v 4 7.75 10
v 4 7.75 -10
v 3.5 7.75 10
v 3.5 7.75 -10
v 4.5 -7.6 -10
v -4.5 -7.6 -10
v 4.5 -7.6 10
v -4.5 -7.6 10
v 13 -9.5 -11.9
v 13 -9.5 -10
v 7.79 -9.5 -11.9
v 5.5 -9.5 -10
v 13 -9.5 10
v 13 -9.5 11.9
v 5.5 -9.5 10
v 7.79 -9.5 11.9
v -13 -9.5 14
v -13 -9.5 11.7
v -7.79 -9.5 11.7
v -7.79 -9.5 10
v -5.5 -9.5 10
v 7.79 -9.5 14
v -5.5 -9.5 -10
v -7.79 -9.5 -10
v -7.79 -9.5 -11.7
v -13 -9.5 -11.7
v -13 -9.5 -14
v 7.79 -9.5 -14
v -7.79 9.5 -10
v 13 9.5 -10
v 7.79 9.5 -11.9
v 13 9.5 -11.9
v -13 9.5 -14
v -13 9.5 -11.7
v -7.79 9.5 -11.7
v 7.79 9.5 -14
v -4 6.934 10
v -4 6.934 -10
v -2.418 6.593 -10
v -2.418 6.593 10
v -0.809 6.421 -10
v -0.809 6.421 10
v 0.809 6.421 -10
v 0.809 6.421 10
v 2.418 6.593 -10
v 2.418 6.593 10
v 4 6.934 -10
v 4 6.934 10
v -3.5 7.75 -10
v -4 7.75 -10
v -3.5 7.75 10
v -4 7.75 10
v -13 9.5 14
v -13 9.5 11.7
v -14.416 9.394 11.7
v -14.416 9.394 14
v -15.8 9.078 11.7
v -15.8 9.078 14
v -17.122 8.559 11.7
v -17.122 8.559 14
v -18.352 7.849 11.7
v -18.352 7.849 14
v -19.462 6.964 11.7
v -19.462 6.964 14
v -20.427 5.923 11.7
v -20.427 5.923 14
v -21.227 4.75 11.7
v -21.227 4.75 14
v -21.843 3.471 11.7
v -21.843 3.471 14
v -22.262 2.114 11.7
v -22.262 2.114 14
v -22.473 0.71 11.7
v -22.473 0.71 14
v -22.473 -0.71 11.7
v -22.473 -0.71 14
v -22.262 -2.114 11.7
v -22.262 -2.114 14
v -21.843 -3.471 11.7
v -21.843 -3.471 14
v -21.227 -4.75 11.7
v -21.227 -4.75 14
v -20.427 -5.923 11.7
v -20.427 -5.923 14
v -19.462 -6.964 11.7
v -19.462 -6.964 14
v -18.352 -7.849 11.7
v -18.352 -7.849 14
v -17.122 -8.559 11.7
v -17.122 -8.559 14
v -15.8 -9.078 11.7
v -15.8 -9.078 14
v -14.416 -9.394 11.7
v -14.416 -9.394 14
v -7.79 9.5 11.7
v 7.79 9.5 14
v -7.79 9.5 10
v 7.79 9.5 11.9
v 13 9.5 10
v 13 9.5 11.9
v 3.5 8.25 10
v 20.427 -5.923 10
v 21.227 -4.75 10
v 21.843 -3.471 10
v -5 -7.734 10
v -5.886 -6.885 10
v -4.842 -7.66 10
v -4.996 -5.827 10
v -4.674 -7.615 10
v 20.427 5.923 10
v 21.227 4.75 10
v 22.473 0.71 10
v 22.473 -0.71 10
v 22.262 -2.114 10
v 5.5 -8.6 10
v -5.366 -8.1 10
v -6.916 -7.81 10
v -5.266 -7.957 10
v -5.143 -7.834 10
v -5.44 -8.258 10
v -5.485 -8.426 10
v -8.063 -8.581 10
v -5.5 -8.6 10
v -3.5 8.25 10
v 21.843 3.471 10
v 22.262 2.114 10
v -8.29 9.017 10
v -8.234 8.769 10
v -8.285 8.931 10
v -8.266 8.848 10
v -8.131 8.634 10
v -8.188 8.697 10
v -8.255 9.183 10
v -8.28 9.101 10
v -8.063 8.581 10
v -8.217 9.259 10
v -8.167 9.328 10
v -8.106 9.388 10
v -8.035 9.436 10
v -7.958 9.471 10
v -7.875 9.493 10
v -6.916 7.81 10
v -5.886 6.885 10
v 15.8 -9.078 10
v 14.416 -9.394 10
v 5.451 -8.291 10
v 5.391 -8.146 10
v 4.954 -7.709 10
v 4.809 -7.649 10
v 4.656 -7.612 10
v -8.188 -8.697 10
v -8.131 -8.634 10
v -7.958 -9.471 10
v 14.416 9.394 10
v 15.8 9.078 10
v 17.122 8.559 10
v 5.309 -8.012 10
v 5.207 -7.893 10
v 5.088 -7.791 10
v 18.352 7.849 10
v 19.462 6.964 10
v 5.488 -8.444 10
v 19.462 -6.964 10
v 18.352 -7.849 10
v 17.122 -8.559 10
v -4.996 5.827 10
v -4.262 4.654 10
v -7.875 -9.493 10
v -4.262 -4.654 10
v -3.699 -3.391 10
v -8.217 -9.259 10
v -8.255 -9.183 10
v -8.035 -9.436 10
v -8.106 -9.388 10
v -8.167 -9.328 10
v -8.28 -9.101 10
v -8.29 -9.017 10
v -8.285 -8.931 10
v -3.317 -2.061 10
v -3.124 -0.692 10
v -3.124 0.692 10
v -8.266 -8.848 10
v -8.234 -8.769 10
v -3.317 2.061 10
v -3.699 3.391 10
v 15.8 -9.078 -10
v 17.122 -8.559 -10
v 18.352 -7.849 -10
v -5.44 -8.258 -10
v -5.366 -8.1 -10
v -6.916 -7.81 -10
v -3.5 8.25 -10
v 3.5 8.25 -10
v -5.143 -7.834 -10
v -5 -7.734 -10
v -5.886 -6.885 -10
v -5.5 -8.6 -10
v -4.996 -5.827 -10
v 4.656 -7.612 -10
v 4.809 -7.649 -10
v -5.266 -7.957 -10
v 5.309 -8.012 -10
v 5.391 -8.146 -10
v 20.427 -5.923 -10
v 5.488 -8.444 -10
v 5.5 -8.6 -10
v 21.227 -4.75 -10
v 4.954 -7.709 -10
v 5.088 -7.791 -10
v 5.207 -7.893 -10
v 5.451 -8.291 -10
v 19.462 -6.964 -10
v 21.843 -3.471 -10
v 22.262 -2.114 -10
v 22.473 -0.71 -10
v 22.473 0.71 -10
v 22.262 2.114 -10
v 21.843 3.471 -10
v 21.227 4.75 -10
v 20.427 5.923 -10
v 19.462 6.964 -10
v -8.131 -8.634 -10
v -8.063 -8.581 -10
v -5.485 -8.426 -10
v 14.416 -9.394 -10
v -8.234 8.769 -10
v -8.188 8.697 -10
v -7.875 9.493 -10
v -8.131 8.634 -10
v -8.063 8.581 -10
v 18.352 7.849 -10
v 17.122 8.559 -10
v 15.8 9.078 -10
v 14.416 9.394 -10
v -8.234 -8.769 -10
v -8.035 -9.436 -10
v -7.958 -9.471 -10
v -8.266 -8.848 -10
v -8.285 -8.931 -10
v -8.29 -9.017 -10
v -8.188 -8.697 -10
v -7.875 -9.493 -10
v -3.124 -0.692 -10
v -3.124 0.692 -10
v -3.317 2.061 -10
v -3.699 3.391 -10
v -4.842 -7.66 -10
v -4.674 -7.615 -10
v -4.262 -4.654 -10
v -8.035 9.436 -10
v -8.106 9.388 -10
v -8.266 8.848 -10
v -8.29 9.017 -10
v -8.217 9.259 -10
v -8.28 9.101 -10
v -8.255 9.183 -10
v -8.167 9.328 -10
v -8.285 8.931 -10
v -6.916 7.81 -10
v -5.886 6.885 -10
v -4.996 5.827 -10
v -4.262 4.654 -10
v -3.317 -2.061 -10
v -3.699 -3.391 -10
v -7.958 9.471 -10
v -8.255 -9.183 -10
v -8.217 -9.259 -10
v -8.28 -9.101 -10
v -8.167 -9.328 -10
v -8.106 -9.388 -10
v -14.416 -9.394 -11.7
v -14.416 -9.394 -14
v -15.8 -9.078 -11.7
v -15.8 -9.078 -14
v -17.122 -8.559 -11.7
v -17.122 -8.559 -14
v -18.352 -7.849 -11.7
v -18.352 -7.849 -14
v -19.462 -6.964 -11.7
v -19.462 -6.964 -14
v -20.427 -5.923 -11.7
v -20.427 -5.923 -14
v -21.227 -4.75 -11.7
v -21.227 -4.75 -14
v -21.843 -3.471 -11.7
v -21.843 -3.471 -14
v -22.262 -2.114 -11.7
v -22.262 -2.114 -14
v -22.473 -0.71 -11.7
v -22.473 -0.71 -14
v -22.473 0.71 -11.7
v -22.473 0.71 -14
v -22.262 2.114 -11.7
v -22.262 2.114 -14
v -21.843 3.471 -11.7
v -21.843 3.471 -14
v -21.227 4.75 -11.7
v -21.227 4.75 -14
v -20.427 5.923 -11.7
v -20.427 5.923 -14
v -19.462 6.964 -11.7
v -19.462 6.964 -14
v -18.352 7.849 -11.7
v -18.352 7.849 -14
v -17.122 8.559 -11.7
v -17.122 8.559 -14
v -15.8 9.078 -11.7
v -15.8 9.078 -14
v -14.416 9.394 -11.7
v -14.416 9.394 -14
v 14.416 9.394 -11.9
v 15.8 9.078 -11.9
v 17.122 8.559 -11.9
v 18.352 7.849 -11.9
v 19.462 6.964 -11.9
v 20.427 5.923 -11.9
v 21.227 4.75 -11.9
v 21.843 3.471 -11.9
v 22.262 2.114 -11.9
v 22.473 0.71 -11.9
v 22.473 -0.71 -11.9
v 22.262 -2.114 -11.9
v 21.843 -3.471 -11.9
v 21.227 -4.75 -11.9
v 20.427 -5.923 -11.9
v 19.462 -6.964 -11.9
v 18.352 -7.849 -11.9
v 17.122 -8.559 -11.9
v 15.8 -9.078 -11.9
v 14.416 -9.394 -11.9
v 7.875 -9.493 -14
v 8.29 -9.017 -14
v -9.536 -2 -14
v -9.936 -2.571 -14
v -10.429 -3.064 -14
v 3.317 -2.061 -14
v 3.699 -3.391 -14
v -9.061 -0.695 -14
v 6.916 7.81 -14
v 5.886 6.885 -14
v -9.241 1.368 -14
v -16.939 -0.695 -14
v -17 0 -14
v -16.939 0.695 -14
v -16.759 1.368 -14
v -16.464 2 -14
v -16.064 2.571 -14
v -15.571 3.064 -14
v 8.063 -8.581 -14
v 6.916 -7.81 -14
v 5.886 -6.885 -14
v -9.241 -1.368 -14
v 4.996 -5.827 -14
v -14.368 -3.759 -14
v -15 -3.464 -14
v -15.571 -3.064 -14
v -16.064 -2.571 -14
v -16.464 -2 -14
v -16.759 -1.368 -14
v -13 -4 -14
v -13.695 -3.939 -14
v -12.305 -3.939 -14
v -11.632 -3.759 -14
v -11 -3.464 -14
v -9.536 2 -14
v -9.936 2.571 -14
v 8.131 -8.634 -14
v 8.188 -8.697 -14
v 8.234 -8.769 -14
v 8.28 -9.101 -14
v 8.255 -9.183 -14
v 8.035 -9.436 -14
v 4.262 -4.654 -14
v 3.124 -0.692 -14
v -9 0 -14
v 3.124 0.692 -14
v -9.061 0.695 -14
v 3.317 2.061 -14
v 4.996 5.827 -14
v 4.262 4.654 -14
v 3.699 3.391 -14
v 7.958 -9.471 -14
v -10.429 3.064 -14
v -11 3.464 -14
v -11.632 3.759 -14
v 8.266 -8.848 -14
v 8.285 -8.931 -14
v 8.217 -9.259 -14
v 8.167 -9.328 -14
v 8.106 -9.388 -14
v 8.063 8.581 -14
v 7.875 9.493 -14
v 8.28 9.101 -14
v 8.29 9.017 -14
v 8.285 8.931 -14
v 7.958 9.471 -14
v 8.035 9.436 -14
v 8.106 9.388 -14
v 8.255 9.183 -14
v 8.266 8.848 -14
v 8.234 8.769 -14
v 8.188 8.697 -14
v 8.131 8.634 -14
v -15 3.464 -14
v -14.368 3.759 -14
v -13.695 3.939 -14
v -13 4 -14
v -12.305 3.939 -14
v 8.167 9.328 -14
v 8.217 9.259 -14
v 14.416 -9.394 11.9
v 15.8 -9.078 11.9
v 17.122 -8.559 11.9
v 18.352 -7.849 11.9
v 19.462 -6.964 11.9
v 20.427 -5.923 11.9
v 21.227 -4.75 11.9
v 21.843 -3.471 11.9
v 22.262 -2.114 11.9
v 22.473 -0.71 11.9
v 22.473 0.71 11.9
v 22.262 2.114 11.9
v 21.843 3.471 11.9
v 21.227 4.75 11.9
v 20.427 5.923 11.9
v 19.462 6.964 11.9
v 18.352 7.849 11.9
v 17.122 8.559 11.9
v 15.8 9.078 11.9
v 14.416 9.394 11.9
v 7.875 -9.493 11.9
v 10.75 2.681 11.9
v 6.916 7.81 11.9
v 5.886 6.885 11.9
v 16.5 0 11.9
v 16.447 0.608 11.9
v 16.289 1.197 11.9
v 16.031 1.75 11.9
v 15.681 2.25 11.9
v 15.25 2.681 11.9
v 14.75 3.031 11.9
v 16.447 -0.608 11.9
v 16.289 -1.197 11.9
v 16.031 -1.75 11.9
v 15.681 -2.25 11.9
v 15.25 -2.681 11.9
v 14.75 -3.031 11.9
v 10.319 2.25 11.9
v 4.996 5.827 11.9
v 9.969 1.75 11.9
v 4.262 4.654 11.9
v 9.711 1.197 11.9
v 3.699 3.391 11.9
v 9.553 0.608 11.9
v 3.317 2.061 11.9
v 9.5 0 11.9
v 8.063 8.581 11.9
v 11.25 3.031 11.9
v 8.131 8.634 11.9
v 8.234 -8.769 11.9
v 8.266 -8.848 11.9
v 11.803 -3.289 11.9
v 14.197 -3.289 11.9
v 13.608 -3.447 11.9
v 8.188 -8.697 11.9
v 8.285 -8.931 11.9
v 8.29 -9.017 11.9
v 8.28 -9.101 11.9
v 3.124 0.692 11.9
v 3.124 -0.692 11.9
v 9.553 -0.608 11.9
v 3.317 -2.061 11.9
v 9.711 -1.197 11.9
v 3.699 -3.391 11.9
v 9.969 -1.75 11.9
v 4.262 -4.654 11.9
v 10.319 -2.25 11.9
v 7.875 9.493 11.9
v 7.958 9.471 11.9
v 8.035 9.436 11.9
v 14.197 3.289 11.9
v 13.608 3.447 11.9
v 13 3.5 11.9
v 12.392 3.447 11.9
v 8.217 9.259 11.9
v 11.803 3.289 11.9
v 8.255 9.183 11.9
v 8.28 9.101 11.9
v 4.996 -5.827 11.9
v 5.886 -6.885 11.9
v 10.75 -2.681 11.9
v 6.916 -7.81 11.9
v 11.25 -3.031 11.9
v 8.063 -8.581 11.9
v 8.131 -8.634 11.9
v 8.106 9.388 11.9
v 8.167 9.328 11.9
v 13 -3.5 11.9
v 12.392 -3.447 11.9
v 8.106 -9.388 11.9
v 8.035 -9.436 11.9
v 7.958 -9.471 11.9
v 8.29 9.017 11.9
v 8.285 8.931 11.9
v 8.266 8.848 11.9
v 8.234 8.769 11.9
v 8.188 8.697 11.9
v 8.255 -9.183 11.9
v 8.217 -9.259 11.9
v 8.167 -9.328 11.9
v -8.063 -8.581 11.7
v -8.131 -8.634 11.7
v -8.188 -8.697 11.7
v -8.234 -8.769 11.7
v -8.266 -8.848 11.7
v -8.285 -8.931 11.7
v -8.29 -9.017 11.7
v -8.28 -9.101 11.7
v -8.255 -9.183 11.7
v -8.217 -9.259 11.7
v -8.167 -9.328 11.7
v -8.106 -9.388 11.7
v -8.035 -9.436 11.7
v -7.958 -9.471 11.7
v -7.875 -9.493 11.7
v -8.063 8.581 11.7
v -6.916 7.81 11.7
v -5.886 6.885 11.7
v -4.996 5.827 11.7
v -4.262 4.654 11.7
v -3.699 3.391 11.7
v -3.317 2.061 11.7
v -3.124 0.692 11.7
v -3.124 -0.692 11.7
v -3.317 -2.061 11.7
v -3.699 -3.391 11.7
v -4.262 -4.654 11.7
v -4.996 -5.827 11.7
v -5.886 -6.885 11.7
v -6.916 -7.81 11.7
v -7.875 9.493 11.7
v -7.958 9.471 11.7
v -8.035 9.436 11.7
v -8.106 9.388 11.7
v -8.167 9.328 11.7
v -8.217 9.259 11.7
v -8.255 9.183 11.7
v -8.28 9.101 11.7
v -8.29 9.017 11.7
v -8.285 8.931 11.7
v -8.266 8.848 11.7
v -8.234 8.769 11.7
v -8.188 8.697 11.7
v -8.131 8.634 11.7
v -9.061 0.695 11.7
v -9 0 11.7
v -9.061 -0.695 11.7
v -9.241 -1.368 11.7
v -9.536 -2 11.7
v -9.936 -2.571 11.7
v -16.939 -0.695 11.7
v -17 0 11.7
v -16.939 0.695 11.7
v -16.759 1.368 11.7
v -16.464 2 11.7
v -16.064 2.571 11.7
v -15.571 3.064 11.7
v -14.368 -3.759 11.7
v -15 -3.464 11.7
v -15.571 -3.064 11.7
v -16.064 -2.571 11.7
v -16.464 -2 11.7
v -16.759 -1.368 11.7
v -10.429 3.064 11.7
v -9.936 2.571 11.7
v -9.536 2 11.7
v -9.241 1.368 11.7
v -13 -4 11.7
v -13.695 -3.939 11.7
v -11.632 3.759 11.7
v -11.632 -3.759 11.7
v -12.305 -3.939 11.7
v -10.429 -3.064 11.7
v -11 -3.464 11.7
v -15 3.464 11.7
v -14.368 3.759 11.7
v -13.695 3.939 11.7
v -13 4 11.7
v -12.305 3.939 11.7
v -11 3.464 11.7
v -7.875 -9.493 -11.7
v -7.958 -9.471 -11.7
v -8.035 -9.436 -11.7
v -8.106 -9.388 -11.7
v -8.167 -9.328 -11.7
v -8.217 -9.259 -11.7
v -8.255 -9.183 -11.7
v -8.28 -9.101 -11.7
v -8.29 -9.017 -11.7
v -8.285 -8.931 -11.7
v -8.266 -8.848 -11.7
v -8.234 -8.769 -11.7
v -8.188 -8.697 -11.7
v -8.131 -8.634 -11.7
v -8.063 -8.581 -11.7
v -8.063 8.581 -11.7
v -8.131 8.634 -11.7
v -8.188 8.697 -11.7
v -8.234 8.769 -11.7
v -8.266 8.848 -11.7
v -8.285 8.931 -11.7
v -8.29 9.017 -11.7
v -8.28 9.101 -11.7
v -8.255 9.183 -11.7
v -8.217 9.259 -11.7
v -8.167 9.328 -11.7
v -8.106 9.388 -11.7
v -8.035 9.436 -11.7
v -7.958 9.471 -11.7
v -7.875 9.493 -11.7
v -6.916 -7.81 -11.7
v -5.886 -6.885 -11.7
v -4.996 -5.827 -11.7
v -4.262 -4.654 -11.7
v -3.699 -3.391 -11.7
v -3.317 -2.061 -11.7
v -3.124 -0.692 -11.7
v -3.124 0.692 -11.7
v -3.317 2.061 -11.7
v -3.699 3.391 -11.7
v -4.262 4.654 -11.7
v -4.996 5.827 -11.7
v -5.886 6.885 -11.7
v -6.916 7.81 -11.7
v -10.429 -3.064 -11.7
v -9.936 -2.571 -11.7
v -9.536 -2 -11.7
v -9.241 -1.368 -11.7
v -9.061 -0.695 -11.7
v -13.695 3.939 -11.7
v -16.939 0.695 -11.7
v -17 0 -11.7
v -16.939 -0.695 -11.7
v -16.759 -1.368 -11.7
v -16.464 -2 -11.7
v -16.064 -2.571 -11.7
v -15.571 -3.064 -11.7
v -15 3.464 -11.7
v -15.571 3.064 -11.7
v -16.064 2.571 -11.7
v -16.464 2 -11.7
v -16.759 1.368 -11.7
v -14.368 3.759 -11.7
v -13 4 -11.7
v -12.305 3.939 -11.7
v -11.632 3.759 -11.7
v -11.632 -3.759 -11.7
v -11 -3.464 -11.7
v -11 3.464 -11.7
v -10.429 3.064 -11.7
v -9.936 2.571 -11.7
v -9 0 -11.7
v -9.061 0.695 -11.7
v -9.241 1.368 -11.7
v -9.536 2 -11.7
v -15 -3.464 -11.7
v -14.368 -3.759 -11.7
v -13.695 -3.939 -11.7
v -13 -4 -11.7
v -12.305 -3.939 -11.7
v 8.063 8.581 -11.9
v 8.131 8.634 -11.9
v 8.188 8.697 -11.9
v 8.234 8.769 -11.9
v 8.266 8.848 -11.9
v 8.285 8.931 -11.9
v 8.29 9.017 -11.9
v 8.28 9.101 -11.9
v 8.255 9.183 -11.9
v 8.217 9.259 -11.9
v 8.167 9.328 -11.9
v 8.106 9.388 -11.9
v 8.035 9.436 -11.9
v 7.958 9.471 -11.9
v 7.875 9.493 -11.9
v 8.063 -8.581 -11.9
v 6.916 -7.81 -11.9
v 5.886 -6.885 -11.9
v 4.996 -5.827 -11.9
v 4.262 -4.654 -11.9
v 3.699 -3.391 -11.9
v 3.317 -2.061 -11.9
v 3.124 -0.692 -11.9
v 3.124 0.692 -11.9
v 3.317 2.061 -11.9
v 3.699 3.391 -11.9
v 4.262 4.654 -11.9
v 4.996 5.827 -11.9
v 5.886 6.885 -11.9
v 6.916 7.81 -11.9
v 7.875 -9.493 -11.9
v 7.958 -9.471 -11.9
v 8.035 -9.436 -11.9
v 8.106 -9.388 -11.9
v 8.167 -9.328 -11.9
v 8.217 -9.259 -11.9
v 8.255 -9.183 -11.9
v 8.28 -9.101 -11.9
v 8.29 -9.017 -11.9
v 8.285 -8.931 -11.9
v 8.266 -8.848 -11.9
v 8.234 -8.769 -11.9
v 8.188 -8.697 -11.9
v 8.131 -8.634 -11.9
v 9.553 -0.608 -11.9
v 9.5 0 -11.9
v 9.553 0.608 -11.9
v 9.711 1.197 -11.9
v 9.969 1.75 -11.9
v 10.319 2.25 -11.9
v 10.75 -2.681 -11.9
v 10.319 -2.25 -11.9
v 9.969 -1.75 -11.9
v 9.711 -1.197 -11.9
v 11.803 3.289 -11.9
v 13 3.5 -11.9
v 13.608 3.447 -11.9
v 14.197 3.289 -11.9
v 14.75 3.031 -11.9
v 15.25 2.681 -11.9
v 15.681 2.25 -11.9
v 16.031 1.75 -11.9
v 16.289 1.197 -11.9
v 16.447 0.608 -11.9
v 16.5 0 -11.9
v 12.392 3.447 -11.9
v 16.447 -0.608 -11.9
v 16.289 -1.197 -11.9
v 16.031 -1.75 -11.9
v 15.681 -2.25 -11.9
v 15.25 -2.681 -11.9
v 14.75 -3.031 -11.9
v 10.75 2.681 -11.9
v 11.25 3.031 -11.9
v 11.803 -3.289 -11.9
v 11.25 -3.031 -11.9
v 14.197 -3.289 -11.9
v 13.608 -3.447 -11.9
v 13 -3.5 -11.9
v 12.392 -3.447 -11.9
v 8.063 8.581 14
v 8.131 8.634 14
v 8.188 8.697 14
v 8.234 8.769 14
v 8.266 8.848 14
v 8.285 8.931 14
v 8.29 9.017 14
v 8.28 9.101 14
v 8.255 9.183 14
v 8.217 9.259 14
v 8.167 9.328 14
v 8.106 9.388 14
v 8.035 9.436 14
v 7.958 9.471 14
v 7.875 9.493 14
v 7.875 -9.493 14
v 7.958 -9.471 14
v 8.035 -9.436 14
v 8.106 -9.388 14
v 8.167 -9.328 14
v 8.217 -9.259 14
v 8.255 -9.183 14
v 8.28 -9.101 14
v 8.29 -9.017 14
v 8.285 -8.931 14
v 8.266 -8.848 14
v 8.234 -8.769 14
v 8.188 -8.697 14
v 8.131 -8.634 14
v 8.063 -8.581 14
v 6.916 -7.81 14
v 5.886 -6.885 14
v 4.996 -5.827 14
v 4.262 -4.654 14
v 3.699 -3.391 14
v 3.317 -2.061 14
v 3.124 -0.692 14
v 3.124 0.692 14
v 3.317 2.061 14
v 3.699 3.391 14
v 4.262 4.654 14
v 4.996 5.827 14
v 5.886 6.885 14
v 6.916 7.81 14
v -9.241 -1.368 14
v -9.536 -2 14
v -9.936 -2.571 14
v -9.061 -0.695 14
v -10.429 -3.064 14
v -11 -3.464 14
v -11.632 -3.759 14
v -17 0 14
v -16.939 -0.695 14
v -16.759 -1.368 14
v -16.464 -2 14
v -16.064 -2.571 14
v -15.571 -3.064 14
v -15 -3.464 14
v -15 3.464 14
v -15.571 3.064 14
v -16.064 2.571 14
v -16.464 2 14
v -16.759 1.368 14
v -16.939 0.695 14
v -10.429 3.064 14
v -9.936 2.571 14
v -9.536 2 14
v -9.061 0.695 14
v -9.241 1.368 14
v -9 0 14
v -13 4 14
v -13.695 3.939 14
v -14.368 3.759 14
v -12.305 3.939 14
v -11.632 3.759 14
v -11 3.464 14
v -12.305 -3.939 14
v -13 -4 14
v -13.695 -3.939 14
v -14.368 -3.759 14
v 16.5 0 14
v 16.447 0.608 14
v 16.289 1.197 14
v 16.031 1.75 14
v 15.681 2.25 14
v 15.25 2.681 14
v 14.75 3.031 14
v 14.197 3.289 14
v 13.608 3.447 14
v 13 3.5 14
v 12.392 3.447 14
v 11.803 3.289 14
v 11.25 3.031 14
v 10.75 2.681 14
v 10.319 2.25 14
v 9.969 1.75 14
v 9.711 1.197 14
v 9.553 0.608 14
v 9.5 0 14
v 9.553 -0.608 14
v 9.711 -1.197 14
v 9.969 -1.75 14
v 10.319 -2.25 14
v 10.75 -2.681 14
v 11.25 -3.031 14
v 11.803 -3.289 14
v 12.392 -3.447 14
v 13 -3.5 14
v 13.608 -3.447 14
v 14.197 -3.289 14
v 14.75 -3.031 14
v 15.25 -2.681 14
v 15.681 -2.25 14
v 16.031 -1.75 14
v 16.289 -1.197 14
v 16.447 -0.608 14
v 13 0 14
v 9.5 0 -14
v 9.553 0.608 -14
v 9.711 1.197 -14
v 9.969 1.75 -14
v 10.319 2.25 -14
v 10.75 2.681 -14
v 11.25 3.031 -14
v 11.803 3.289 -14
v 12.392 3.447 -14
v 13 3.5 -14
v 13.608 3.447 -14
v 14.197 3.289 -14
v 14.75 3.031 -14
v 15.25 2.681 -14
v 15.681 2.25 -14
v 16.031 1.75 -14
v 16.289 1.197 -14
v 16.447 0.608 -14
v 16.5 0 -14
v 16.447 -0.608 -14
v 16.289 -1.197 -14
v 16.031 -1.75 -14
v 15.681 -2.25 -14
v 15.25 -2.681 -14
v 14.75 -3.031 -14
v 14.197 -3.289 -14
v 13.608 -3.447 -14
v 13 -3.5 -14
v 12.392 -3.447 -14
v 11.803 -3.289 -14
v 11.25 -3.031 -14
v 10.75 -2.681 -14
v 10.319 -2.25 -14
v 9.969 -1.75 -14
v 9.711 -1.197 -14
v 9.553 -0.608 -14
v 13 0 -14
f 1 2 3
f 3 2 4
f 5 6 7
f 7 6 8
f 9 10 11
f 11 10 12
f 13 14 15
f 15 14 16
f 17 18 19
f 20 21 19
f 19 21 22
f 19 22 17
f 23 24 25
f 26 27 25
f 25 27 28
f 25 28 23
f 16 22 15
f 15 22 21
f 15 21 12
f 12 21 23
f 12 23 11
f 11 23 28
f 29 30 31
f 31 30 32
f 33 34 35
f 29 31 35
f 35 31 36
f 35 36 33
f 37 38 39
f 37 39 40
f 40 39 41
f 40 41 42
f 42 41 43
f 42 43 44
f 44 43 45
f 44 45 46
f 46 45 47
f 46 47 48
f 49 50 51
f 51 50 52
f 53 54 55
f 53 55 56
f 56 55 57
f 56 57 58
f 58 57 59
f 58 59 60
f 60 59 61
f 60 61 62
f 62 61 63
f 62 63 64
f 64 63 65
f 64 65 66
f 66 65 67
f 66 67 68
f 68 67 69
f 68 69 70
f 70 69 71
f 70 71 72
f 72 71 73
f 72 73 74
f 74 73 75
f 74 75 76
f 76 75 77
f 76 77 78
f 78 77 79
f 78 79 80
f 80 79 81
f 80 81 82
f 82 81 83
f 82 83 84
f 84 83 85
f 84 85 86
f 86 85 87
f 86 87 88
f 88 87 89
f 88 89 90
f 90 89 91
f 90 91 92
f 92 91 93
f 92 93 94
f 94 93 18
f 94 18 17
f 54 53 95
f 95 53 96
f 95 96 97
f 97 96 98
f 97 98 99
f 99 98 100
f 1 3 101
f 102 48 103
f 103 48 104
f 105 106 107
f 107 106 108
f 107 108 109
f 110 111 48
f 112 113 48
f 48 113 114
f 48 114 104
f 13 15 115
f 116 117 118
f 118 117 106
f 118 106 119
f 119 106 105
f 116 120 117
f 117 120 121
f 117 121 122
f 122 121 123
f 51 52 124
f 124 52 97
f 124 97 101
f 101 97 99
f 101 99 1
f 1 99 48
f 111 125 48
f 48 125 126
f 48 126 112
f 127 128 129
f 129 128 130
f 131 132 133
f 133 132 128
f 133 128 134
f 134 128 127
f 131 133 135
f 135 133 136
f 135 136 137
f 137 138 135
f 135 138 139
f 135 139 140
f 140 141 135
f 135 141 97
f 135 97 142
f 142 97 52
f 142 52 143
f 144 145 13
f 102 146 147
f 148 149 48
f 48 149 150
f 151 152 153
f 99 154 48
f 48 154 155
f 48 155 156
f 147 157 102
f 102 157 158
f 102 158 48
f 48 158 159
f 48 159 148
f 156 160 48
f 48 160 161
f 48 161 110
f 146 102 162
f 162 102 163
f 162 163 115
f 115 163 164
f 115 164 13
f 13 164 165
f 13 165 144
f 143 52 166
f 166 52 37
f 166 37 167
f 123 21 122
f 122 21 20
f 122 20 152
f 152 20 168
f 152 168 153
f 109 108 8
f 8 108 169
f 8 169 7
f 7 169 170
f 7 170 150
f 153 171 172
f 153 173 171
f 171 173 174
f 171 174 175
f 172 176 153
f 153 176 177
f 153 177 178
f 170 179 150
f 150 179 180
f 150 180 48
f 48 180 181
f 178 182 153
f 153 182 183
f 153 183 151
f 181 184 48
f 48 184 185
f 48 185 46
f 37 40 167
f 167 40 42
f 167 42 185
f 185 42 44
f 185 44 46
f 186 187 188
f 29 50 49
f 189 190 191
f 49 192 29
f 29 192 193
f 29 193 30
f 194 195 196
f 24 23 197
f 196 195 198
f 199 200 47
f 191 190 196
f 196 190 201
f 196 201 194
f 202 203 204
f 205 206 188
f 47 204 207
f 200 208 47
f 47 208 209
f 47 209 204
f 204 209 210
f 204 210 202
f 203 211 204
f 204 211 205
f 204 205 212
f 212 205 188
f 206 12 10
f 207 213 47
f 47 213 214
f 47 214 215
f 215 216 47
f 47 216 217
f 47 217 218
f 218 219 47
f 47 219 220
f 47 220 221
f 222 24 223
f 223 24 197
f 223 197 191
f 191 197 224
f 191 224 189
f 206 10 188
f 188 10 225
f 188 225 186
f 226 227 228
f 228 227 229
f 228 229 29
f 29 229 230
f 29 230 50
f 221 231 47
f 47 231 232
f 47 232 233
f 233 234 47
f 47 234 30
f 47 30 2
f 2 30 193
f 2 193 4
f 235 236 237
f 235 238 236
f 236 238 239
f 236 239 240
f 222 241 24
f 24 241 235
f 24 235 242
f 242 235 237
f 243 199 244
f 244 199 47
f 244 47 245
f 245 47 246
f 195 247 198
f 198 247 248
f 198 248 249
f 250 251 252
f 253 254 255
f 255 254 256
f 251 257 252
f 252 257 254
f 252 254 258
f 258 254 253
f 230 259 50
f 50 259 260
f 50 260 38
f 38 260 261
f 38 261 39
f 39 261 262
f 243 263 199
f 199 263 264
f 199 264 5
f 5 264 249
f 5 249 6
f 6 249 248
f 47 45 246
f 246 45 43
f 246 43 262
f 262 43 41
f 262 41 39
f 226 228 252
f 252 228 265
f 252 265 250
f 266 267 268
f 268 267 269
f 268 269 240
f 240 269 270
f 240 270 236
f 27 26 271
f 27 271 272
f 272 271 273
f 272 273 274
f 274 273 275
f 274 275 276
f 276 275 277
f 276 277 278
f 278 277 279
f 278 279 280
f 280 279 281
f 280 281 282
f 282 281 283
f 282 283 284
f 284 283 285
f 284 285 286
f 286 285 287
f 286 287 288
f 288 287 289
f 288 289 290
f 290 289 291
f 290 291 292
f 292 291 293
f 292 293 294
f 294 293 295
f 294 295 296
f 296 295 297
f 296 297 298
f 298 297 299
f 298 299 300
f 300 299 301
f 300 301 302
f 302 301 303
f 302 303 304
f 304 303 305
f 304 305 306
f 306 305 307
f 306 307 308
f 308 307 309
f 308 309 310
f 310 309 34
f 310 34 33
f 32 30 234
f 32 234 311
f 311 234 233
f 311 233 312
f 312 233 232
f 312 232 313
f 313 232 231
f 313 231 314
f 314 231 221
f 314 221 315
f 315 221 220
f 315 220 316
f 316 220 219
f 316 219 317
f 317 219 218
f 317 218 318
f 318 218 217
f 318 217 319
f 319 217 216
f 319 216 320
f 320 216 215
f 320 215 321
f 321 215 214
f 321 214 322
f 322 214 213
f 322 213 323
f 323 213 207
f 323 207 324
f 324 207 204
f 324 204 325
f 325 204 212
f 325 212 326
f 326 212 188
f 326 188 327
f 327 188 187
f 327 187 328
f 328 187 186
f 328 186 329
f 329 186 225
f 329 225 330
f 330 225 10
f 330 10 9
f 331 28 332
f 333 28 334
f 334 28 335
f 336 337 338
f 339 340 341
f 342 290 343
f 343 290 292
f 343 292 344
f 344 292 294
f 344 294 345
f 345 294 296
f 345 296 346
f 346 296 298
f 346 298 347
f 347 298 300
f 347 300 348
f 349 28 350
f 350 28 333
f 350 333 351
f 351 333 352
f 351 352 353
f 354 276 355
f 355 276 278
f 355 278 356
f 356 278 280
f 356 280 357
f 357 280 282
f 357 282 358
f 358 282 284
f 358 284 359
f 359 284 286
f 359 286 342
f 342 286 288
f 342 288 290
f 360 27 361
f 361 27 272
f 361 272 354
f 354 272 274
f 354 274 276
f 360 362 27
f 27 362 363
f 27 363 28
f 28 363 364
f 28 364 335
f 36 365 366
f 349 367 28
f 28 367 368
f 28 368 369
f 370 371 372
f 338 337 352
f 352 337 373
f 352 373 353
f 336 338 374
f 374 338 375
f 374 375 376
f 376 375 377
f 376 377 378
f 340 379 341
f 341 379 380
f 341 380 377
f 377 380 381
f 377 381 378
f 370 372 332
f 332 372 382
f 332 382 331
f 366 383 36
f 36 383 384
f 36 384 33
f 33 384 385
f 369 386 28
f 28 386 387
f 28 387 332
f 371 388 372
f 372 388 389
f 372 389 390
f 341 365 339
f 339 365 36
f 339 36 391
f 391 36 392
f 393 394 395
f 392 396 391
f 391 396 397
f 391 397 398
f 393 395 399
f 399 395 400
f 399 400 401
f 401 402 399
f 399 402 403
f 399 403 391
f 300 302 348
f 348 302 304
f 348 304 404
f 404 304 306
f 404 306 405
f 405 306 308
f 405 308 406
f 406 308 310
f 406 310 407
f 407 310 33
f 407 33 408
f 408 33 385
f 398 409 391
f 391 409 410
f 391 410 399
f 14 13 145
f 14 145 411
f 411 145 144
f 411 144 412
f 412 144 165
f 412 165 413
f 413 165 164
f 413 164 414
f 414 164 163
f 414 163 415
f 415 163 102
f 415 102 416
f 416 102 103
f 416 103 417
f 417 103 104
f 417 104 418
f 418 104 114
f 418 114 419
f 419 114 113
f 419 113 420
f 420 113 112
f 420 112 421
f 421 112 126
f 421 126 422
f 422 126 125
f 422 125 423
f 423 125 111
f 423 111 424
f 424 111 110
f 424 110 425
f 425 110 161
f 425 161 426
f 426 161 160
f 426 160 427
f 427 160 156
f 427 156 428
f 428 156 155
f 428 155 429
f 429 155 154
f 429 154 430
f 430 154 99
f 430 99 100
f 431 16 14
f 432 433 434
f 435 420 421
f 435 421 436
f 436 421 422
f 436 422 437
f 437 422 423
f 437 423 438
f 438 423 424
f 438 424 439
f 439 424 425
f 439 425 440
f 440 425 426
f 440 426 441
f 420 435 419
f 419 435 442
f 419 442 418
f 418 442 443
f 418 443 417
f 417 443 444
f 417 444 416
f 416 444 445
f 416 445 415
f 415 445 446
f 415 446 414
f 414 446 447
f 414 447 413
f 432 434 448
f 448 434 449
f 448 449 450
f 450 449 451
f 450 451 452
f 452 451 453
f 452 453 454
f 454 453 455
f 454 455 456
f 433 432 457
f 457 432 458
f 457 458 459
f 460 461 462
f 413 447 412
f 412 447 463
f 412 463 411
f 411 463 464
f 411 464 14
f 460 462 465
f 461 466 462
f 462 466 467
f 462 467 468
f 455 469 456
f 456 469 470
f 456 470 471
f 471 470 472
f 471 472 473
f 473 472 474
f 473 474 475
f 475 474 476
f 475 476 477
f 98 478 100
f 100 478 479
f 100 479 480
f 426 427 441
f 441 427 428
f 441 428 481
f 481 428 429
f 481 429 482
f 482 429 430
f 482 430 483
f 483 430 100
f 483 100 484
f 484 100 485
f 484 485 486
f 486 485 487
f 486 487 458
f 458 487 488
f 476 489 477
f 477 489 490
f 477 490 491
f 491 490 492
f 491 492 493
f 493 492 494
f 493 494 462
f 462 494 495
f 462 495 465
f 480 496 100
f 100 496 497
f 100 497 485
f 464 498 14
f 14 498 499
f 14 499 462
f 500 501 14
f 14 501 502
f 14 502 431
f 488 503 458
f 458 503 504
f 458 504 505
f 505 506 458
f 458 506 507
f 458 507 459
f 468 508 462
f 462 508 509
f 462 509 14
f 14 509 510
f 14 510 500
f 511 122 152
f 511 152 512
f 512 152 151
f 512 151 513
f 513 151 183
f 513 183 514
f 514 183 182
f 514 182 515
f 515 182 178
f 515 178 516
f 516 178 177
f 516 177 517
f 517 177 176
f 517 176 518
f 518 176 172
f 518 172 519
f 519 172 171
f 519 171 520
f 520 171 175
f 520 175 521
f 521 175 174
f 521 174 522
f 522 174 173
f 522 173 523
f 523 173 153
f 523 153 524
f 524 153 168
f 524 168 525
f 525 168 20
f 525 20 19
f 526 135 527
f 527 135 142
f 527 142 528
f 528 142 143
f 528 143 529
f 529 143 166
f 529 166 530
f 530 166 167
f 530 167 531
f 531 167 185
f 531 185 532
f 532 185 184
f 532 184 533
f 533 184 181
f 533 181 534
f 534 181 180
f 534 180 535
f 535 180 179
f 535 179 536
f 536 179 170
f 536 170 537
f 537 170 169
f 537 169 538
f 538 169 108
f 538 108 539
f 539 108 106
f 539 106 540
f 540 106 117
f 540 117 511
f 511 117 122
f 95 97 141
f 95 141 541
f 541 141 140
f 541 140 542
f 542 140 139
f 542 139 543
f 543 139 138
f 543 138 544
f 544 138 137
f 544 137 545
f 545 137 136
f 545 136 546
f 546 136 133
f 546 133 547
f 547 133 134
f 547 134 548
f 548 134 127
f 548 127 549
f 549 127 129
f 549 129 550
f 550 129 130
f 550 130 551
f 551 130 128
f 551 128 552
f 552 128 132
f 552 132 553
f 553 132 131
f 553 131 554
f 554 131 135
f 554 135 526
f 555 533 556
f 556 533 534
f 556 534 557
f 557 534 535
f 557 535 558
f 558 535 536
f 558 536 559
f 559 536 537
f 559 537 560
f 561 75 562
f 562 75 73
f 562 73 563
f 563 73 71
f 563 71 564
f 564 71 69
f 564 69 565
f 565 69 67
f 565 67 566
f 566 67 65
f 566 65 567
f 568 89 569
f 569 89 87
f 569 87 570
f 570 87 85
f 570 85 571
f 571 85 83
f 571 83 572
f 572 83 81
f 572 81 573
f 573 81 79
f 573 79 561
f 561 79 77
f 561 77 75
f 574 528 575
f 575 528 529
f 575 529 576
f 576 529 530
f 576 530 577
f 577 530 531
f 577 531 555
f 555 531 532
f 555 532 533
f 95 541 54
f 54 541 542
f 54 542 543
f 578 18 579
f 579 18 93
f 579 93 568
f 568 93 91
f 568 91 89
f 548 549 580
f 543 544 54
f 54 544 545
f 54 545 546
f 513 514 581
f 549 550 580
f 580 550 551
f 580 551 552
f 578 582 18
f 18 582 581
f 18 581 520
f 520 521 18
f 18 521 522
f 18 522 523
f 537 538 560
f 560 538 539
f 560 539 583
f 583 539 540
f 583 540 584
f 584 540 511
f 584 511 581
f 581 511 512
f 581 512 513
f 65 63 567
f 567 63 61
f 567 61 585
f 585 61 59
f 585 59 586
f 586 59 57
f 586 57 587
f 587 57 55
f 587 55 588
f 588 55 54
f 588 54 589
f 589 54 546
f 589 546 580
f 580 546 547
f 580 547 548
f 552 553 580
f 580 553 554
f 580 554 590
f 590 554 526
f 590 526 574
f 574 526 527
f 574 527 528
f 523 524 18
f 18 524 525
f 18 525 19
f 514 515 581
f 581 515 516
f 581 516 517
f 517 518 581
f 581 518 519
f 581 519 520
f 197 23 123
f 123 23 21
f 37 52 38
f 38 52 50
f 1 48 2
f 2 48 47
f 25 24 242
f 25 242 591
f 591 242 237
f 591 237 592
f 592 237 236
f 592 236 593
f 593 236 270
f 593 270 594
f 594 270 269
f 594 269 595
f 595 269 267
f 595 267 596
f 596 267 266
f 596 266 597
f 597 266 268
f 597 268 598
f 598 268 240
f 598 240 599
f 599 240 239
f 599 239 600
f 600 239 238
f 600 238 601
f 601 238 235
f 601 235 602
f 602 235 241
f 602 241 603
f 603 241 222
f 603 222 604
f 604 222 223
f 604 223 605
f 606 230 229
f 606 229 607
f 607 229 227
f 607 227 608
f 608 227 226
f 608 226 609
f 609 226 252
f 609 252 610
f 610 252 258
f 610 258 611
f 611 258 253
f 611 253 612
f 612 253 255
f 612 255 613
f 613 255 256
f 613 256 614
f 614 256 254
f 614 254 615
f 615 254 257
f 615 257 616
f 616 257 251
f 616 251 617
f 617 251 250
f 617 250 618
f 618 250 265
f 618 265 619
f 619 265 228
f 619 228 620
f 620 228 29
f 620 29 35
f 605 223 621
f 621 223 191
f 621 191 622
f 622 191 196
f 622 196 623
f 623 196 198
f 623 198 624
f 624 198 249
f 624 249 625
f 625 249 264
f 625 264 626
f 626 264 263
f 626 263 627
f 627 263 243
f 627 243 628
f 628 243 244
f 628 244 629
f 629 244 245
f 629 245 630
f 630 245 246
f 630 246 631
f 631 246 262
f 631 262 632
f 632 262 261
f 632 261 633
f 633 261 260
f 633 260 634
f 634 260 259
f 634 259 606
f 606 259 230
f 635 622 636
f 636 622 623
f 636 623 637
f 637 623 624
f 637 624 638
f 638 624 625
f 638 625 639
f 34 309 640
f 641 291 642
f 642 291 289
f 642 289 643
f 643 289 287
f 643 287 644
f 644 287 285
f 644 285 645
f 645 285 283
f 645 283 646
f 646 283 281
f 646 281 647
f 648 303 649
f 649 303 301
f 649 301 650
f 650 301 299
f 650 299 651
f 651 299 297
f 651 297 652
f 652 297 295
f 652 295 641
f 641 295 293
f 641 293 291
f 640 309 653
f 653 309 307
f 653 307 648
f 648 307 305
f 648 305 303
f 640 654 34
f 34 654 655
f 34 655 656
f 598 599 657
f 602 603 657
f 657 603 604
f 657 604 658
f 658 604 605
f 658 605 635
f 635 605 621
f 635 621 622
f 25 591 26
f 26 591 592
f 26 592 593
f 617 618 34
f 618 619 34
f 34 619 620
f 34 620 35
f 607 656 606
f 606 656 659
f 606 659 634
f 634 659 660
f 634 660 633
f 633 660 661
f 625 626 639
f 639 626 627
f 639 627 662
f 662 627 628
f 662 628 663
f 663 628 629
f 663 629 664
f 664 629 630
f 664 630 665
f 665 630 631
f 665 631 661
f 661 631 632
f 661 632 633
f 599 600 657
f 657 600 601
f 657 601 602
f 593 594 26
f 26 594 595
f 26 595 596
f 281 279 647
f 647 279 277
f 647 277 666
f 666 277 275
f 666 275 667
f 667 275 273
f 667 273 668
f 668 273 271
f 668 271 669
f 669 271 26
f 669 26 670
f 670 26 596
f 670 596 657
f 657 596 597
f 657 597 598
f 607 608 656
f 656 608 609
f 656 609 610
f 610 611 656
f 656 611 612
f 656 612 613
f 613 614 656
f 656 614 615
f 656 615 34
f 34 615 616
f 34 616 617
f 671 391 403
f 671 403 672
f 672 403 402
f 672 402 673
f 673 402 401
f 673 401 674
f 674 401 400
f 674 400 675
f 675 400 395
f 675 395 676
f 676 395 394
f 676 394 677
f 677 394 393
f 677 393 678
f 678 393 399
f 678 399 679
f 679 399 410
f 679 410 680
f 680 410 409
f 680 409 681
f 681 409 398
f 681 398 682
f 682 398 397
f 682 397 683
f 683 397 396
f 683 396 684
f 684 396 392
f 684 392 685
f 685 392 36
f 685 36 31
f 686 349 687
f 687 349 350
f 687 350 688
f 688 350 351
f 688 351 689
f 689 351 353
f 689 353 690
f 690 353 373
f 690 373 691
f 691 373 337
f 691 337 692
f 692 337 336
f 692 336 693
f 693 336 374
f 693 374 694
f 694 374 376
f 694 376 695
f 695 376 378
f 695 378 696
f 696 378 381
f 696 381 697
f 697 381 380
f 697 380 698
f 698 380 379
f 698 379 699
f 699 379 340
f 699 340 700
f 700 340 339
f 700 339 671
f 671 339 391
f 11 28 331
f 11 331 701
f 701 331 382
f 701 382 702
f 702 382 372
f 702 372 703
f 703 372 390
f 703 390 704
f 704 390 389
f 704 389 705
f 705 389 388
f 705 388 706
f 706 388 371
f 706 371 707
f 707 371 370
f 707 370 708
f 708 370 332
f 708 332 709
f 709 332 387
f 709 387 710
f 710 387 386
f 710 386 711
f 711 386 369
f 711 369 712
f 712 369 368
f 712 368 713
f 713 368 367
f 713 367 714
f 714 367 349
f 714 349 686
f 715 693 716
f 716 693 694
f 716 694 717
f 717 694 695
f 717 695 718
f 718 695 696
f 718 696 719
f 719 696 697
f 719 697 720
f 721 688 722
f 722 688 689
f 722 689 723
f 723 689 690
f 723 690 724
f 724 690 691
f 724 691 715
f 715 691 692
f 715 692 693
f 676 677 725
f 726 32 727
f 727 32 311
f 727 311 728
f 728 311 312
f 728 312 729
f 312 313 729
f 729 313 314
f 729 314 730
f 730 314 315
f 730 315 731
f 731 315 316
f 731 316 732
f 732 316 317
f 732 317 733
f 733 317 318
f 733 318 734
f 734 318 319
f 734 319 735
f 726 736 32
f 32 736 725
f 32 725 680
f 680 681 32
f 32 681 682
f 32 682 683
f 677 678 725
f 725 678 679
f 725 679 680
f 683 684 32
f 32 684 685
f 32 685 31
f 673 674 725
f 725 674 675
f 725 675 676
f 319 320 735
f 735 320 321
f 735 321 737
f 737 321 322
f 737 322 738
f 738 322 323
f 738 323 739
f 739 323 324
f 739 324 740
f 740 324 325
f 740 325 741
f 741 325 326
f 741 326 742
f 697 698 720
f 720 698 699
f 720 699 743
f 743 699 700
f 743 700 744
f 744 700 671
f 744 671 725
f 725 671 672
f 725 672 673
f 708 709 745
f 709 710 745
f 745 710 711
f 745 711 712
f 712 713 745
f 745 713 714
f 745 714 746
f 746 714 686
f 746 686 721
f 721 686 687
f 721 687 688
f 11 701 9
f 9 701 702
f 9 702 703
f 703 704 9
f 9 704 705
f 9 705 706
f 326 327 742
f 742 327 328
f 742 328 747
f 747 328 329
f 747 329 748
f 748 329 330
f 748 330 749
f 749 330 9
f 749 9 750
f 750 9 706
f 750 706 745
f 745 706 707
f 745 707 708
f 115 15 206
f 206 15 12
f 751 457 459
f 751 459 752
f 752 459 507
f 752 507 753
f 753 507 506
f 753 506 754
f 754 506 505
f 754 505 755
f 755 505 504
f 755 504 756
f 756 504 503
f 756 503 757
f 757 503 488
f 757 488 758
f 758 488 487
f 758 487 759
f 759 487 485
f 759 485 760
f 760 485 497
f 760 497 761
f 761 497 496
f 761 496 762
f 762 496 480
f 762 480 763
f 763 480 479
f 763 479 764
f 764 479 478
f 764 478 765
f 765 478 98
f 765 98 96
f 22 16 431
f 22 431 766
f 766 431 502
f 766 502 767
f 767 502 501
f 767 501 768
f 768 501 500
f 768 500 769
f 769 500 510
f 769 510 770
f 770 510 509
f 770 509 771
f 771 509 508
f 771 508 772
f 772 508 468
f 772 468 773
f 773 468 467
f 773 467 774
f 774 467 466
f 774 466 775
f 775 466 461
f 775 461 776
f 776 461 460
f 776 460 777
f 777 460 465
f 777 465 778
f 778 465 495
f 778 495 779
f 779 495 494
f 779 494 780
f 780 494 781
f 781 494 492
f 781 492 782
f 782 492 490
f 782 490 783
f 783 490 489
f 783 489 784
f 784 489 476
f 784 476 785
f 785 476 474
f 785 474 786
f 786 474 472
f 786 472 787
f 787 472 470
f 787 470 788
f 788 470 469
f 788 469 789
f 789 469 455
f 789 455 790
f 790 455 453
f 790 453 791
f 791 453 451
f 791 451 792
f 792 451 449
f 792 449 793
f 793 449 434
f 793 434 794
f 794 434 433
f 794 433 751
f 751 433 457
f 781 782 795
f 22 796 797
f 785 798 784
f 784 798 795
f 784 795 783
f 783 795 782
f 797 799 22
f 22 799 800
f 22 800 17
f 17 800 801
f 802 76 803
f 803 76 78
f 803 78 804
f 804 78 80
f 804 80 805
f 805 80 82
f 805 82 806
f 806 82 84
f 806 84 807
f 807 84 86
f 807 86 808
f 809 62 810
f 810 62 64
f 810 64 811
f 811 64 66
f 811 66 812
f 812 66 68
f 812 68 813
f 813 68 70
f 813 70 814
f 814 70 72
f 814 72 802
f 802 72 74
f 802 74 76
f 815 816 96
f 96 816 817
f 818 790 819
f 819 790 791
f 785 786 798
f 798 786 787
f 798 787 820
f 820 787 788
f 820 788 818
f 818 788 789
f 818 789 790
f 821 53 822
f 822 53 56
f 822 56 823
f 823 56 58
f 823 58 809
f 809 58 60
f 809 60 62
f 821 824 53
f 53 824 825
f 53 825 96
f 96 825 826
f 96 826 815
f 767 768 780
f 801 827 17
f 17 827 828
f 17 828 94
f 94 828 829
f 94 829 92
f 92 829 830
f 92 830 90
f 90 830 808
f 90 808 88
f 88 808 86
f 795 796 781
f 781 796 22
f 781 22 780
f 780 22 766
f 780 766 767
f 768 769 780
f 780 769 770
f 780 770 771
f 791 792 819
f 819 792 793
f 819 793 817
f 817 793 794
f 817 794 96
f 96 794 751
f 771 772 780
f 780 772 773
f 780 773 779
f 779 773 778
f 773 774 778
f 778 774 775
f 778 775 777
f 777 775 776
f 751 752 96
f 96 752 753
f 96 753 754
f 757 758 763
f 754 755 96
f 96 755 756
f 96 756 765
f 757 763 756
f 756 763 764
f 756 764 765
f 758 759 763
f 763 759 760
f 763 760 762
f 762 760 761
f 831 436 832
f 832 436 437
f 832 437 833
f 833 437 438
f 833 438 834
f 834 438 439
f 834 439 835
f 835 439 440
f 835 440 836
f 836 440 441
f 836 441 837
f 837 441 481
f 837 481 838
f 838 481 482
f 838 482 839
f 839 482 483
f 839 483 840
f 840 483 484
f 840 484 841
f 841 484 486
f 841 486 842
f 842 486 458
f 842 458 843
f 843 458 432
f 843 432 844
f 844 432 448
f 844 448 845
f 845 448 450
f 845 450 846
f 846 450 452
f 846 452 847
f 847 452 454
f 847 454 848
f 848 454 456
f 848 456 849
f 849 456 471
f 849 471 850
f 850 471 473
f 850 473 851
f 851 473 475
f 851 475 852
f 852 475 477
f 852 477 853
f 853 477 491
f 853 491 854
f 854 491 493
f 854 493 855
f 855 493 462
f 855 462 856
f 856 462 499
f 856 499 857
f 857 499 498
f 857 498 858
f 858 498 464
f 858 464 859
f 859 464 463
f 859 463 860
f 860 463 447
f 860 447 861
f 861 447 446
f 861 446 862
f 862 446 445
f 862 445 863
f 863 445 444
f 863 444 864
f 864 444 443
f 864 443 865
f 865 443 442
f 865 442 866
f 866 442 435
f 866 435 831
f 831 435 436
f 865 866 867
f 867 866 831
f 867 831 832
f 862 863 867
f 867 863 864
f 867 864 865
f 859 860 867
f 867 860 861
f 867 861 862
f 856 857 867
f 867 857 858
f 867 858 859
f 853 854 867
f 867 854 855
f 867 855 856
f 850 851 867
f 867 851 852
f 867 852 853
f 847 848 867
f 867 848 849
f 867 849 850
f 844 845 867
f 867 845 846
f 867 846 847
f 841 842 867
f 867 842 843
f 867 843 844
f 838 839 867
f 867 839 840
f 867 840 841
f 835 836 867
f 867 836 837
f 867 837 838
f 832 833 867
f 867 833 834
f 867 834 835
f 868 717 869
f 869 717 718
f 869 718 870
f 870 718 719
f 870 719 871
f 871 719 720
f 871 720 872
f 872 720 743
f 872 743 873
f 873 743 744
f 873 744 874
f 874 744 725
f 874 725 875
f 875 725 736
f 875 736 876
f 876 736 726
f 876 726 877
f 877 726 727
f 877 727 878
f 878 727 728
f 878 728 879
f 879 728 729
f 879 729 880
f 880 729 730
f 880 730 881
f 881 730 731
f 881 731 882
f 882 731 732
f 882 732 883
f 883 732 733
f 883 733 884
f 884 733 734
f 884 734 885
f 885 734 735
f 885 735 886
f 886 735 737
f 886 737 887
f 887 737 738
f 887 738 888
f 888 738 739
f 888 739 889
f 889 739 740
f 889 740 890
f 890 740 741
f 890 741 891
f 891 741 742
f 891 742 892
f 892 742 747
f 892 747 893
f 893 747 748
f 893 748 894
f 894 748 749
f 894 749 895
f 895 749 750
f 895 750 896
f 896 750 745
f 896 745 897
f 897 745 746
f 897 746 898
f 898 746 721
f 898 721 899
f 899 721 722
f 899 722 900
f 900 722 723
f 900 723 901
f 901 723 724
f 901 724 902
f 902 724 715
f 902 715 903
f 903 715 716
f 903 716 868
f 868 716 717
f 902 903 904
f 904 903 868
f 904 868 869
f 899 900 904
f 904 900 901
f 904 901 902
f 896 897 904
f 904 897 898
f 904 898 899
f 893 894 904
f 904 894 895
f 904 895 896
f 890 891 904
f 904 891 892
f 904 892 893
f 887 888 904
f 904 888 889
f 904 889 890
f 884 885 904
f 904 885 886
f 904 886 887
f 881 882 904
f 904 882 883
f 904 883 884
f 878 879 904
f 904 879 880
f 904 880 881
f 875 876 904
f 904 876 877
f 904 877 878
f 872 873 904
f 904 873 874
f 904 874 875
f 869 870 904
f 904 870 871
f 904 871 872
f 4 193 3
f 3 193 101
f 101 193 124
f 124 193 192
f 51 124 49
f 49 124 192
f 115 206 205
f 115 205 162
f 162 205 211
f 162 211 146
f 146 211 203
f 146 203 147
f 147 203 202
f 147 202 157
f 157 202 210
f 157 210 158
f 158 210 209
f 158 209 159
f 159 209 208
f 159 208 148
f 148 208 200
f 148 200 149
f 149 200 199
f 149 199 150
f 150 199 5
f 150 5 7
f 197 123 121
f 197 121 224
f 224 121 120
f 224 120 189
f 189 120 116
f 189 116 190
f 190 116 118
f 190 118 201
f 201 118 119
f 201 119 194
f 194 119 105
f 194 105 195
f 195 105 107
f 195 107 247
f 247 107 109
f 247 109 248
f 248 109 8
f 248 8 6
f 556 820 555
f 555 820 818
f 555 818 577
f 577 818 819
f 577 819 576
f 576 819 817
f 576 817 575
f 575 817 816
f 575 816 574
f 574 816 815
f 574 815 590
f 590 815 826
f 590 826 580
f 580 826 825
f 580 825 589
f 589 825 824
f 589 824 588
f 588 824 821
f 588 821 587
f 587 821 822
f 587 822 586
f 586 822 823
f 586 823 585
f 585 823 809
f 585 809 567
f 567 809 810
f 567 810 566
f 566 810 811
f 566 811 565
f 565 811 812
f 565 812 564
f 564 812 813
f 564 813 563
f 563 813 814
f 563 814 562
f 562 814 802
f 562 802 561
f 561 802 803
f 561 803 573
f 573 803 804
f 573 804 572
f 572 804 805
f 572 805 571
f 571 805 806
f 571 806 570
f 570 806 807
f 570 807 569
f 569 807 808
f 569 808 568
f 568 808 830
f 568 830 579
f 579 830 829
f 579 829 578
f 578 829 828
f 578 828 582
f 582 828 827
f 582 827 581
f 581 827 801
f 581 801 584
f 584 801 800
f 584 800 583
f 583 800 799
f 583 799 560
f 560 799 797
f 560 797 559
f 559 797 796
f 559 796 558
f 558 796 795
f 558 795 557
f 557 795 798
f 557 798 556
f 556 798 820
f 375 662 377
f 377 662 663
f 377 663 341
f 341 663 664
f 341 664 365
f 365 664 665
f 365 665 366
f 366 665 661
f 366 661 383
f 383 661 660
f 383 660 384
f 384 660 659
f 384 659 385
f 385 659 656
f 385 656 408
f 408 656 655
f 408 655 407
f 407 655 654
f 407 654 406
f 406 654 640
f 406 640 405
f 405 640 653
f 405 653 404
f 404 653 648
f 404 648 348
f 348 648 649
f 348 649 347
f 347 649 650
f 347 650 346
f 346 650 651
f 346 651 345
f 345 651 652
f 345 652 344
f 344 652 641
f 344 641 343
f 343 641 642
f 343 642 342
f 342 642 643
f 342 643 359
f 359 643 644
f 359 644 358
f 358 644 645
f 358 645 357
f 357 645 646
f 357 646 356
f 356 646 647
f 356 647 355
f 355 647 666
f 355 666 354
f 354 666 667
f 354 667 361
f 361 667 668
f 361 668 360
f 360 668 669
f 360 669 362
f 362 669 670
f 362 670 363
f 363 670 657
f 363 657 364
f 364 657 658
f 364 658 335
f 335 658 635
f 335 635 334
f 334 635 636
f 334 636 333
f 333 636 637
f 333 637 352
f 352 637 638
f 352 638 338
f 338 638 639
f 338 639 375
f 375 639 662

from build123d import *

# Parameters (mm, degrees)
SALIENTE_EXTRUIR1_DEPTH           = 4
CROQUIS2_W                        = 26
CROQUIS2_H                        = 1.9
SALIENTE_EXTRUIR2_DEPTH           = 20
SALIENTE_EXTRUIR3_DEPTH           = 20
SALIENTE_EXTRUIR4_START           = 1.9
SALIENTE_EXTRUIR4_DEPTH           = 1.9
CROQUIS5_W                        = 20
CROQUIS5_H                        = 1.9
CORTAR_EXTRUIR1_DEPTH             = 5.21
CORTAR_EXTRUIR2_START             = -1.7
CORTAR_EXTRUIR2_DEPTH             = 1.7
CROQUIS7_W                        = 20
CROQUIS7_H                        = 1.9
CORTAR_EXTRUIR3_DEPTH             = 2.29
CORTAR_EXTRUIR4_DEPTH             = 20
CORTAR_EXTRUIR5_DEPTH             = 20
CORTAR_EXTRUIR6_DEPTH             = 1.7
CORTAR_EXTRUIR7_START             = -2.1
CORTAR_EXTRUIR7_DEPTH             = 2.1
CROQUIS12_W                       = 20
CROQUIS12_H                       = 1.9
CORTAR_EXTRUIR8_DEPTH             = 7.5
SALIENTE_EXTRUIR5_START           = 2.1
SALIENTE_EXTRUIR5_DEPTH           = 2.1
CROQUIS14_W                       = 3.5
CROQUIS14_H                       = 2.1
CROQUIS15_W                       = 3.5
CROQUIS15_H                       = 2.1
DI_METRO_DE_TALADRO_7_0_7_1_D     = 7
DI_METRO_DE_TALADRO_7_0_7_1_DEPTH = 2.3
DI_METRO_DE_TALADRO_7_0_7_2_D     = 7
DI_METRO_DE_TALADRO_7_0_7_2_DEPTH = 28
NERVIO1_REACH                     = 30.151
CROQUIS20_WALL_W                  = 78.302753042
CROQUIS20_WALL_H                  = 7
REDONDEO1_R                       = 1
CROQUIS21_R                       = 4
CORTAR_EXTRUIR9_DEPTH             = 34


with BuildPart() as part:
    # Croquis1 → Saliente-Extruir1 (new body)
    with BuildSketch(Plane.XY.offset(-10)):
        with BuildLine():
            Line((-13, -9.5), (13, -9.5))
            ThreePointArc((13, -9.5), (22.5, 0), (13, 9.5))
            Line((13, 9.5), (-13, 9.5))
            ThreePointArc((-13, 9.5), (-22.5, 0), (-13, -9.5))
        make_face()
    extrude(amount=-SALIENTE_EXTRUIR1_DEPTH)

    # Croquis2 → Saliente-Extruir2 (add)
    with BuildSketch(Plane.XY.offset(-10)):
        with Locations((0, -8.55)):
            Rectangle(CROQUIS2_W, CROQUIS2_H)
    extrude(amount=SALIENTE_EXTRUIR2_DEPTH)

    # Croquis3 → Saliente-Extruir3 (add)
    with BuildSketch(Plane.XY.offset(-10)):
        with BuildLine():
            Line((-6.2731571, 7.75), (6.2731571, 7.75))
            ThreePointArc((6.2731571, 7.75), (0, 6.4), (-6.2731571, 7.75))
        make_face()
    extrude(amount=SALIENTE_EXTRUIR3_DEPTH)

    # Croquis4 → Saliente-Extruir4 (add)
    with BuildSketch(Plane.XY.offset(10).offset(SALIENTE_EXTRUIR4_START)):
        with BuildLine():
            Line((-13, 9.5), (13, 9.5))
            ThreePointArc((13, 9.5), (22.5, 0), (13, -9.5))
            Line((13, -9.5), (-13, -9.5))
            ThreePointArc((-13, -9.5), (-22.5, 0), (-13, 9.5))
        make_face()
    extrude(amount=-SALIENTE_EXTRUIR4_DEPTH)

    # Croquis5 → Cortar-Extruir1 (cut)
    with BuildSketch(Plane.ZY.offset(13)):
        with Locations((0, -8.55)):
            Rectangle(CROQUIS5_W, CROQUIS5_H)
    extrude(amount=-CORTAR_EXTRUIR1_DEPTH, mode=Mode.SUBTRACT)

    # Croquis6 → Cortar-Extruir2 (cut)
    with BuildSketch(Plane(origin=(0, 0, 10), x_dir=(-1, 0, 0), z_dir=(0, 0, -1)).offset(CORTAR_EXTRUIR2_START)):
        with BuildLine():
            Line((7.79, -9.5), (13, -9.5))
            ThreePointArc((13, -9.5), (22.5, 0), (13, 9.5))
            Line((13, 9.5), (7.79, 9.5))
            ThreePointArc((7.79, 9.5), (8.269213969, 9.142667347), (8.063472742, 8.581415887))
            ThreePointArc((8.063472742, 8.581415887), (3.1, 0), (8.063472742, -8.581415887))
            ThreePointArc((8.063472742, -8.581415887), (8.269213969, -9.142667347), (7.79, -9.5))
        make_face()
    extrude(amount=CORTAR_EXTRUIR2_DEPTH, mode=Mode.SUBTRACT)

    # Croquis7 → Cortar-Extruir3 (cut)
    with BuildSketch(Plane.ZY.offset(7.79)):
        with Locations((0, -8.55)):
            Rectangle(CROQUIS7_W, CROQUIS7_H)
    extrude(amount=-CORTAR_EXTRUIR3_DEPTH, mode=Mode.SUBTRACT)

    # Croquis8 → Cortar-Extruir4 (cut)
    with BuildSketch(Plane(origin=(0, 0, -10), x_dir=(-1, 0, 0), z_dir=(0, 0, -1))):
        with BuildLine():
            Line((4, 7.75), (4, 6.933937347))
            ThreePointArc((4, 6.933937347), (5.152759335, 7.296896808), (6.2731571, 7.75))
            Line((6.2731571, 7.75), (4, 7.75))
        make_face()
    extrude(amount=-CORTAR_EXTRUIR4_DEPTH, mode=Mode.SUBTRACT)

    # Croquis9 → Cortar-Extruir5 (cut)
    with BuildSketch(Plane(origin=(0, 0, -10), x_dir=(-1, 0, 0), z_dir=(0, 0, -1))):
        with BuildLine():
            Line((-4, 6.933937347), (-4, 7.75))
            Line((-4, 7.75), (-6.2731571, 7.75))
            ThreePointArc((-6.2731571, 7.75), (-5.152759335, 7.296896808), (-4, 6.933937347))
        make_face()
    extrude(amount=-CORTAR_EXTRUIR5_DEPTH, mode=Mode.SUBTRACT)

    # Croquis10 → Cortar-Extruir6 (cut)
    with BuildSketch(Plane.XY.offset(-10)):
        with BuildLine():
            Line((-7.79, 9.5), (-13, 9.5))
            ThreePointArc((-13, 9.5), (-22.5, 0), (-13, -9.5))
            Line((-13, -9.5), (-7.79, -9.5))
            ThreePointArc((-7.79, -9.5), (-8.269213969, -9.142667347), (-8.063472742, -8.581415887))
            ThreePointArc((-8.063472742, -8.581415887), (-3.1, 0), (-8.063472742, 8.581415887))
            ThreePointArc((-8.063472742, 8.581415887), (-8.269213969, 9.142667347), (-7.79, 9.5))
        make_face()
    extrude(amount=-CORTAR_EXTRUIR6_DEPTH, mode=Mode.SUBTRACT)

    # Croquis11 → Cortar-Extruir7 (cut)
    with BuildSketch(Plane(origin=(0, 0, -14), x_dir=(-1, 0, 0), z_dir=(0, 0, -1)).offset(CORTAR_EXTRUIR7_START)):
        with BuildLine():
            Line((-13, -9.5), (-7.79, -9.5))
            ThreePointArc((-7.79, -9.5), (-8.269213969, -9.142667347), (-8.063472742, -8.581415887))
            ThreePointArc((-8.063472742, -8.581415887), (-3.1, 0), (-8.063472742, 8.581415887))
            ThreePointArc((-8.063472742, 8.581415887), (-8.269213969, 9.142667347), (-7.79, 9.5))
            Line((-7.79, 9.5), (-13, 9.5))
            ThreePointArc((-13, 9.5), (-22.5, 0), (-13, -9.5))
        make_face()
    extrude(amount=CORTAR_EXTRUIR7_DEPTH, mode=Mode.SUBTRACT)

    # Croquis12 → Cortar-Extruir8 (cut)
    with BuildSketch(Plane(origin=(13, 0, 0), x_dir=(0, 0, -1), z_dir=(1, 0, 0))):
        with Locations((0, -8.55)):
            Rectangle(CROQUIS12_W, CROQUIS12_H)
    extrude(amount=-CORTAR_EXTRUIR8_DEPTH, mode=Mode.SUBTRACT)

    # Croquis13 → Saliente-Extruir5 (add)
    with BuildSketch(Plane.XY.offset(11.9).offset(SALIENTE_EXTRUIR5_START)):
        with BuildLine():
            Line((7.79, -9.5), (-13, -9.5))
            ThreePointArc((-13, -9.5), (-22.5, 0), (-13, 9.5))
            Line((-13, 9.5), (7.79, 9.5))
            ThreePointArc((7.79, 9.5), (8.269213969, 9.142667347), (8.063472742, 8.581415887))
            ThreePointArc((8.063472742, 8.581415887), (3.1, 0), (8.063472742, -8.581415887))
            ThreePointArc((8.063472742, -8.581415887), (8.269213969, -9.142667347), (7.79, -9.5))
        make_face()
    extrude(amount=-SALIENTE_EXTRUIR5_DEPTH)

    # Croquis14 → Revolución1 (revolve)
    with BuildSketch(Plane(origin=(0, 0, 0), x_dir=(1, 0, 0), z_dir=(0, 1, 0))):
        with Locations((14.75, -12.95)):
            Rectangle(CROQUIS14_W, CROQUIS14_H)
    revolve(axis=Axis((13, 0, 11.9), (0, 0, 1)))

    # Croquis15 → Revolución2 (revolve)
    with BuildSketch(Plane.XZ, mode=Mode.PRIVATE) as revoluci_n2_sk:
        with Locations((14.75, -12.95)):
            Rectangle(CROQUIS15_W, CROQUIS15_H)
    revolve(revoluci_n2_sk.sketch.rotate(Axis((13, 0, -11.9), (0, 0, -1)), 180), axis=Axis((13, 0, -11.9), (0, 0, -1)))

    # Diámetro de taladro Ø7.0 (7)1
    with Locations(Plane(origin=(0, 0, 11.7), x_dir=(-1, 0, 0), z_dir=(0, 0, -1))):
        with Locations((13, 0)):
            Hole(DI_METRO_DE_TALADRO_7_0_7_1_D / 2, depth=DI_METRO_DE_TALADRO_7_0_7_1_DEPTH)

    # Diámetro de taladro Ø7.0 (7)2
    with Locations(Plane(origin=(0, 0, -14), x_dir=(-1, 0, 0), z_dir=(0, 0, -1))):
        with Locations((13, 0)):
            Hole(DI_METRO_DE_TALADRO_7_0_7_2_D / 2, depth=DI_METRO_DE_TALADRO_7_0_7_2_DEPTH)

    # Croquis20 wall → Nervio1 (add, up to next)
    with BuildSketch(Plane(origin=(0, 8.25, 0), x_dir=(0, 0, -1), z_dir=(0, -1, 0)), mode=Mode.PRIVATE) as nervio1_sk1:
        Rectangle(CROQUIS20_WALL_W, CROQUIS20_WALL_H)
    nervio1_tool1 = extrude(nervio1_sk1.sketch, amount=NERVIO1_REACH, mode=Mode.PRIVATE) - part.part
    add(nervio1_tool1.solids().sort_by_distance((0, 8.25, 0))[0])

    # Redondeo1
    redondeo1_edges = [part.edges().sort_by_distance(p)[0] for p in [
        (5.5, -7.6, 0),
        (-5.5, -7.6, 0),
    ]]
    fillet(redondeo1_edges, radius=REDONDEO1_R)

    # Croquis21 → Cortar-Extruir9 (cut)
    with BuildSketch(Plane.XY.offset(14)):
        with Locations((-13, 0)):
            Circle(CROQUIS21_R)
    extrude(amount=-CORTAR_EXTRUIR9_DEPTH, mode=Mode.SUBTRACT)


solid = part.part
